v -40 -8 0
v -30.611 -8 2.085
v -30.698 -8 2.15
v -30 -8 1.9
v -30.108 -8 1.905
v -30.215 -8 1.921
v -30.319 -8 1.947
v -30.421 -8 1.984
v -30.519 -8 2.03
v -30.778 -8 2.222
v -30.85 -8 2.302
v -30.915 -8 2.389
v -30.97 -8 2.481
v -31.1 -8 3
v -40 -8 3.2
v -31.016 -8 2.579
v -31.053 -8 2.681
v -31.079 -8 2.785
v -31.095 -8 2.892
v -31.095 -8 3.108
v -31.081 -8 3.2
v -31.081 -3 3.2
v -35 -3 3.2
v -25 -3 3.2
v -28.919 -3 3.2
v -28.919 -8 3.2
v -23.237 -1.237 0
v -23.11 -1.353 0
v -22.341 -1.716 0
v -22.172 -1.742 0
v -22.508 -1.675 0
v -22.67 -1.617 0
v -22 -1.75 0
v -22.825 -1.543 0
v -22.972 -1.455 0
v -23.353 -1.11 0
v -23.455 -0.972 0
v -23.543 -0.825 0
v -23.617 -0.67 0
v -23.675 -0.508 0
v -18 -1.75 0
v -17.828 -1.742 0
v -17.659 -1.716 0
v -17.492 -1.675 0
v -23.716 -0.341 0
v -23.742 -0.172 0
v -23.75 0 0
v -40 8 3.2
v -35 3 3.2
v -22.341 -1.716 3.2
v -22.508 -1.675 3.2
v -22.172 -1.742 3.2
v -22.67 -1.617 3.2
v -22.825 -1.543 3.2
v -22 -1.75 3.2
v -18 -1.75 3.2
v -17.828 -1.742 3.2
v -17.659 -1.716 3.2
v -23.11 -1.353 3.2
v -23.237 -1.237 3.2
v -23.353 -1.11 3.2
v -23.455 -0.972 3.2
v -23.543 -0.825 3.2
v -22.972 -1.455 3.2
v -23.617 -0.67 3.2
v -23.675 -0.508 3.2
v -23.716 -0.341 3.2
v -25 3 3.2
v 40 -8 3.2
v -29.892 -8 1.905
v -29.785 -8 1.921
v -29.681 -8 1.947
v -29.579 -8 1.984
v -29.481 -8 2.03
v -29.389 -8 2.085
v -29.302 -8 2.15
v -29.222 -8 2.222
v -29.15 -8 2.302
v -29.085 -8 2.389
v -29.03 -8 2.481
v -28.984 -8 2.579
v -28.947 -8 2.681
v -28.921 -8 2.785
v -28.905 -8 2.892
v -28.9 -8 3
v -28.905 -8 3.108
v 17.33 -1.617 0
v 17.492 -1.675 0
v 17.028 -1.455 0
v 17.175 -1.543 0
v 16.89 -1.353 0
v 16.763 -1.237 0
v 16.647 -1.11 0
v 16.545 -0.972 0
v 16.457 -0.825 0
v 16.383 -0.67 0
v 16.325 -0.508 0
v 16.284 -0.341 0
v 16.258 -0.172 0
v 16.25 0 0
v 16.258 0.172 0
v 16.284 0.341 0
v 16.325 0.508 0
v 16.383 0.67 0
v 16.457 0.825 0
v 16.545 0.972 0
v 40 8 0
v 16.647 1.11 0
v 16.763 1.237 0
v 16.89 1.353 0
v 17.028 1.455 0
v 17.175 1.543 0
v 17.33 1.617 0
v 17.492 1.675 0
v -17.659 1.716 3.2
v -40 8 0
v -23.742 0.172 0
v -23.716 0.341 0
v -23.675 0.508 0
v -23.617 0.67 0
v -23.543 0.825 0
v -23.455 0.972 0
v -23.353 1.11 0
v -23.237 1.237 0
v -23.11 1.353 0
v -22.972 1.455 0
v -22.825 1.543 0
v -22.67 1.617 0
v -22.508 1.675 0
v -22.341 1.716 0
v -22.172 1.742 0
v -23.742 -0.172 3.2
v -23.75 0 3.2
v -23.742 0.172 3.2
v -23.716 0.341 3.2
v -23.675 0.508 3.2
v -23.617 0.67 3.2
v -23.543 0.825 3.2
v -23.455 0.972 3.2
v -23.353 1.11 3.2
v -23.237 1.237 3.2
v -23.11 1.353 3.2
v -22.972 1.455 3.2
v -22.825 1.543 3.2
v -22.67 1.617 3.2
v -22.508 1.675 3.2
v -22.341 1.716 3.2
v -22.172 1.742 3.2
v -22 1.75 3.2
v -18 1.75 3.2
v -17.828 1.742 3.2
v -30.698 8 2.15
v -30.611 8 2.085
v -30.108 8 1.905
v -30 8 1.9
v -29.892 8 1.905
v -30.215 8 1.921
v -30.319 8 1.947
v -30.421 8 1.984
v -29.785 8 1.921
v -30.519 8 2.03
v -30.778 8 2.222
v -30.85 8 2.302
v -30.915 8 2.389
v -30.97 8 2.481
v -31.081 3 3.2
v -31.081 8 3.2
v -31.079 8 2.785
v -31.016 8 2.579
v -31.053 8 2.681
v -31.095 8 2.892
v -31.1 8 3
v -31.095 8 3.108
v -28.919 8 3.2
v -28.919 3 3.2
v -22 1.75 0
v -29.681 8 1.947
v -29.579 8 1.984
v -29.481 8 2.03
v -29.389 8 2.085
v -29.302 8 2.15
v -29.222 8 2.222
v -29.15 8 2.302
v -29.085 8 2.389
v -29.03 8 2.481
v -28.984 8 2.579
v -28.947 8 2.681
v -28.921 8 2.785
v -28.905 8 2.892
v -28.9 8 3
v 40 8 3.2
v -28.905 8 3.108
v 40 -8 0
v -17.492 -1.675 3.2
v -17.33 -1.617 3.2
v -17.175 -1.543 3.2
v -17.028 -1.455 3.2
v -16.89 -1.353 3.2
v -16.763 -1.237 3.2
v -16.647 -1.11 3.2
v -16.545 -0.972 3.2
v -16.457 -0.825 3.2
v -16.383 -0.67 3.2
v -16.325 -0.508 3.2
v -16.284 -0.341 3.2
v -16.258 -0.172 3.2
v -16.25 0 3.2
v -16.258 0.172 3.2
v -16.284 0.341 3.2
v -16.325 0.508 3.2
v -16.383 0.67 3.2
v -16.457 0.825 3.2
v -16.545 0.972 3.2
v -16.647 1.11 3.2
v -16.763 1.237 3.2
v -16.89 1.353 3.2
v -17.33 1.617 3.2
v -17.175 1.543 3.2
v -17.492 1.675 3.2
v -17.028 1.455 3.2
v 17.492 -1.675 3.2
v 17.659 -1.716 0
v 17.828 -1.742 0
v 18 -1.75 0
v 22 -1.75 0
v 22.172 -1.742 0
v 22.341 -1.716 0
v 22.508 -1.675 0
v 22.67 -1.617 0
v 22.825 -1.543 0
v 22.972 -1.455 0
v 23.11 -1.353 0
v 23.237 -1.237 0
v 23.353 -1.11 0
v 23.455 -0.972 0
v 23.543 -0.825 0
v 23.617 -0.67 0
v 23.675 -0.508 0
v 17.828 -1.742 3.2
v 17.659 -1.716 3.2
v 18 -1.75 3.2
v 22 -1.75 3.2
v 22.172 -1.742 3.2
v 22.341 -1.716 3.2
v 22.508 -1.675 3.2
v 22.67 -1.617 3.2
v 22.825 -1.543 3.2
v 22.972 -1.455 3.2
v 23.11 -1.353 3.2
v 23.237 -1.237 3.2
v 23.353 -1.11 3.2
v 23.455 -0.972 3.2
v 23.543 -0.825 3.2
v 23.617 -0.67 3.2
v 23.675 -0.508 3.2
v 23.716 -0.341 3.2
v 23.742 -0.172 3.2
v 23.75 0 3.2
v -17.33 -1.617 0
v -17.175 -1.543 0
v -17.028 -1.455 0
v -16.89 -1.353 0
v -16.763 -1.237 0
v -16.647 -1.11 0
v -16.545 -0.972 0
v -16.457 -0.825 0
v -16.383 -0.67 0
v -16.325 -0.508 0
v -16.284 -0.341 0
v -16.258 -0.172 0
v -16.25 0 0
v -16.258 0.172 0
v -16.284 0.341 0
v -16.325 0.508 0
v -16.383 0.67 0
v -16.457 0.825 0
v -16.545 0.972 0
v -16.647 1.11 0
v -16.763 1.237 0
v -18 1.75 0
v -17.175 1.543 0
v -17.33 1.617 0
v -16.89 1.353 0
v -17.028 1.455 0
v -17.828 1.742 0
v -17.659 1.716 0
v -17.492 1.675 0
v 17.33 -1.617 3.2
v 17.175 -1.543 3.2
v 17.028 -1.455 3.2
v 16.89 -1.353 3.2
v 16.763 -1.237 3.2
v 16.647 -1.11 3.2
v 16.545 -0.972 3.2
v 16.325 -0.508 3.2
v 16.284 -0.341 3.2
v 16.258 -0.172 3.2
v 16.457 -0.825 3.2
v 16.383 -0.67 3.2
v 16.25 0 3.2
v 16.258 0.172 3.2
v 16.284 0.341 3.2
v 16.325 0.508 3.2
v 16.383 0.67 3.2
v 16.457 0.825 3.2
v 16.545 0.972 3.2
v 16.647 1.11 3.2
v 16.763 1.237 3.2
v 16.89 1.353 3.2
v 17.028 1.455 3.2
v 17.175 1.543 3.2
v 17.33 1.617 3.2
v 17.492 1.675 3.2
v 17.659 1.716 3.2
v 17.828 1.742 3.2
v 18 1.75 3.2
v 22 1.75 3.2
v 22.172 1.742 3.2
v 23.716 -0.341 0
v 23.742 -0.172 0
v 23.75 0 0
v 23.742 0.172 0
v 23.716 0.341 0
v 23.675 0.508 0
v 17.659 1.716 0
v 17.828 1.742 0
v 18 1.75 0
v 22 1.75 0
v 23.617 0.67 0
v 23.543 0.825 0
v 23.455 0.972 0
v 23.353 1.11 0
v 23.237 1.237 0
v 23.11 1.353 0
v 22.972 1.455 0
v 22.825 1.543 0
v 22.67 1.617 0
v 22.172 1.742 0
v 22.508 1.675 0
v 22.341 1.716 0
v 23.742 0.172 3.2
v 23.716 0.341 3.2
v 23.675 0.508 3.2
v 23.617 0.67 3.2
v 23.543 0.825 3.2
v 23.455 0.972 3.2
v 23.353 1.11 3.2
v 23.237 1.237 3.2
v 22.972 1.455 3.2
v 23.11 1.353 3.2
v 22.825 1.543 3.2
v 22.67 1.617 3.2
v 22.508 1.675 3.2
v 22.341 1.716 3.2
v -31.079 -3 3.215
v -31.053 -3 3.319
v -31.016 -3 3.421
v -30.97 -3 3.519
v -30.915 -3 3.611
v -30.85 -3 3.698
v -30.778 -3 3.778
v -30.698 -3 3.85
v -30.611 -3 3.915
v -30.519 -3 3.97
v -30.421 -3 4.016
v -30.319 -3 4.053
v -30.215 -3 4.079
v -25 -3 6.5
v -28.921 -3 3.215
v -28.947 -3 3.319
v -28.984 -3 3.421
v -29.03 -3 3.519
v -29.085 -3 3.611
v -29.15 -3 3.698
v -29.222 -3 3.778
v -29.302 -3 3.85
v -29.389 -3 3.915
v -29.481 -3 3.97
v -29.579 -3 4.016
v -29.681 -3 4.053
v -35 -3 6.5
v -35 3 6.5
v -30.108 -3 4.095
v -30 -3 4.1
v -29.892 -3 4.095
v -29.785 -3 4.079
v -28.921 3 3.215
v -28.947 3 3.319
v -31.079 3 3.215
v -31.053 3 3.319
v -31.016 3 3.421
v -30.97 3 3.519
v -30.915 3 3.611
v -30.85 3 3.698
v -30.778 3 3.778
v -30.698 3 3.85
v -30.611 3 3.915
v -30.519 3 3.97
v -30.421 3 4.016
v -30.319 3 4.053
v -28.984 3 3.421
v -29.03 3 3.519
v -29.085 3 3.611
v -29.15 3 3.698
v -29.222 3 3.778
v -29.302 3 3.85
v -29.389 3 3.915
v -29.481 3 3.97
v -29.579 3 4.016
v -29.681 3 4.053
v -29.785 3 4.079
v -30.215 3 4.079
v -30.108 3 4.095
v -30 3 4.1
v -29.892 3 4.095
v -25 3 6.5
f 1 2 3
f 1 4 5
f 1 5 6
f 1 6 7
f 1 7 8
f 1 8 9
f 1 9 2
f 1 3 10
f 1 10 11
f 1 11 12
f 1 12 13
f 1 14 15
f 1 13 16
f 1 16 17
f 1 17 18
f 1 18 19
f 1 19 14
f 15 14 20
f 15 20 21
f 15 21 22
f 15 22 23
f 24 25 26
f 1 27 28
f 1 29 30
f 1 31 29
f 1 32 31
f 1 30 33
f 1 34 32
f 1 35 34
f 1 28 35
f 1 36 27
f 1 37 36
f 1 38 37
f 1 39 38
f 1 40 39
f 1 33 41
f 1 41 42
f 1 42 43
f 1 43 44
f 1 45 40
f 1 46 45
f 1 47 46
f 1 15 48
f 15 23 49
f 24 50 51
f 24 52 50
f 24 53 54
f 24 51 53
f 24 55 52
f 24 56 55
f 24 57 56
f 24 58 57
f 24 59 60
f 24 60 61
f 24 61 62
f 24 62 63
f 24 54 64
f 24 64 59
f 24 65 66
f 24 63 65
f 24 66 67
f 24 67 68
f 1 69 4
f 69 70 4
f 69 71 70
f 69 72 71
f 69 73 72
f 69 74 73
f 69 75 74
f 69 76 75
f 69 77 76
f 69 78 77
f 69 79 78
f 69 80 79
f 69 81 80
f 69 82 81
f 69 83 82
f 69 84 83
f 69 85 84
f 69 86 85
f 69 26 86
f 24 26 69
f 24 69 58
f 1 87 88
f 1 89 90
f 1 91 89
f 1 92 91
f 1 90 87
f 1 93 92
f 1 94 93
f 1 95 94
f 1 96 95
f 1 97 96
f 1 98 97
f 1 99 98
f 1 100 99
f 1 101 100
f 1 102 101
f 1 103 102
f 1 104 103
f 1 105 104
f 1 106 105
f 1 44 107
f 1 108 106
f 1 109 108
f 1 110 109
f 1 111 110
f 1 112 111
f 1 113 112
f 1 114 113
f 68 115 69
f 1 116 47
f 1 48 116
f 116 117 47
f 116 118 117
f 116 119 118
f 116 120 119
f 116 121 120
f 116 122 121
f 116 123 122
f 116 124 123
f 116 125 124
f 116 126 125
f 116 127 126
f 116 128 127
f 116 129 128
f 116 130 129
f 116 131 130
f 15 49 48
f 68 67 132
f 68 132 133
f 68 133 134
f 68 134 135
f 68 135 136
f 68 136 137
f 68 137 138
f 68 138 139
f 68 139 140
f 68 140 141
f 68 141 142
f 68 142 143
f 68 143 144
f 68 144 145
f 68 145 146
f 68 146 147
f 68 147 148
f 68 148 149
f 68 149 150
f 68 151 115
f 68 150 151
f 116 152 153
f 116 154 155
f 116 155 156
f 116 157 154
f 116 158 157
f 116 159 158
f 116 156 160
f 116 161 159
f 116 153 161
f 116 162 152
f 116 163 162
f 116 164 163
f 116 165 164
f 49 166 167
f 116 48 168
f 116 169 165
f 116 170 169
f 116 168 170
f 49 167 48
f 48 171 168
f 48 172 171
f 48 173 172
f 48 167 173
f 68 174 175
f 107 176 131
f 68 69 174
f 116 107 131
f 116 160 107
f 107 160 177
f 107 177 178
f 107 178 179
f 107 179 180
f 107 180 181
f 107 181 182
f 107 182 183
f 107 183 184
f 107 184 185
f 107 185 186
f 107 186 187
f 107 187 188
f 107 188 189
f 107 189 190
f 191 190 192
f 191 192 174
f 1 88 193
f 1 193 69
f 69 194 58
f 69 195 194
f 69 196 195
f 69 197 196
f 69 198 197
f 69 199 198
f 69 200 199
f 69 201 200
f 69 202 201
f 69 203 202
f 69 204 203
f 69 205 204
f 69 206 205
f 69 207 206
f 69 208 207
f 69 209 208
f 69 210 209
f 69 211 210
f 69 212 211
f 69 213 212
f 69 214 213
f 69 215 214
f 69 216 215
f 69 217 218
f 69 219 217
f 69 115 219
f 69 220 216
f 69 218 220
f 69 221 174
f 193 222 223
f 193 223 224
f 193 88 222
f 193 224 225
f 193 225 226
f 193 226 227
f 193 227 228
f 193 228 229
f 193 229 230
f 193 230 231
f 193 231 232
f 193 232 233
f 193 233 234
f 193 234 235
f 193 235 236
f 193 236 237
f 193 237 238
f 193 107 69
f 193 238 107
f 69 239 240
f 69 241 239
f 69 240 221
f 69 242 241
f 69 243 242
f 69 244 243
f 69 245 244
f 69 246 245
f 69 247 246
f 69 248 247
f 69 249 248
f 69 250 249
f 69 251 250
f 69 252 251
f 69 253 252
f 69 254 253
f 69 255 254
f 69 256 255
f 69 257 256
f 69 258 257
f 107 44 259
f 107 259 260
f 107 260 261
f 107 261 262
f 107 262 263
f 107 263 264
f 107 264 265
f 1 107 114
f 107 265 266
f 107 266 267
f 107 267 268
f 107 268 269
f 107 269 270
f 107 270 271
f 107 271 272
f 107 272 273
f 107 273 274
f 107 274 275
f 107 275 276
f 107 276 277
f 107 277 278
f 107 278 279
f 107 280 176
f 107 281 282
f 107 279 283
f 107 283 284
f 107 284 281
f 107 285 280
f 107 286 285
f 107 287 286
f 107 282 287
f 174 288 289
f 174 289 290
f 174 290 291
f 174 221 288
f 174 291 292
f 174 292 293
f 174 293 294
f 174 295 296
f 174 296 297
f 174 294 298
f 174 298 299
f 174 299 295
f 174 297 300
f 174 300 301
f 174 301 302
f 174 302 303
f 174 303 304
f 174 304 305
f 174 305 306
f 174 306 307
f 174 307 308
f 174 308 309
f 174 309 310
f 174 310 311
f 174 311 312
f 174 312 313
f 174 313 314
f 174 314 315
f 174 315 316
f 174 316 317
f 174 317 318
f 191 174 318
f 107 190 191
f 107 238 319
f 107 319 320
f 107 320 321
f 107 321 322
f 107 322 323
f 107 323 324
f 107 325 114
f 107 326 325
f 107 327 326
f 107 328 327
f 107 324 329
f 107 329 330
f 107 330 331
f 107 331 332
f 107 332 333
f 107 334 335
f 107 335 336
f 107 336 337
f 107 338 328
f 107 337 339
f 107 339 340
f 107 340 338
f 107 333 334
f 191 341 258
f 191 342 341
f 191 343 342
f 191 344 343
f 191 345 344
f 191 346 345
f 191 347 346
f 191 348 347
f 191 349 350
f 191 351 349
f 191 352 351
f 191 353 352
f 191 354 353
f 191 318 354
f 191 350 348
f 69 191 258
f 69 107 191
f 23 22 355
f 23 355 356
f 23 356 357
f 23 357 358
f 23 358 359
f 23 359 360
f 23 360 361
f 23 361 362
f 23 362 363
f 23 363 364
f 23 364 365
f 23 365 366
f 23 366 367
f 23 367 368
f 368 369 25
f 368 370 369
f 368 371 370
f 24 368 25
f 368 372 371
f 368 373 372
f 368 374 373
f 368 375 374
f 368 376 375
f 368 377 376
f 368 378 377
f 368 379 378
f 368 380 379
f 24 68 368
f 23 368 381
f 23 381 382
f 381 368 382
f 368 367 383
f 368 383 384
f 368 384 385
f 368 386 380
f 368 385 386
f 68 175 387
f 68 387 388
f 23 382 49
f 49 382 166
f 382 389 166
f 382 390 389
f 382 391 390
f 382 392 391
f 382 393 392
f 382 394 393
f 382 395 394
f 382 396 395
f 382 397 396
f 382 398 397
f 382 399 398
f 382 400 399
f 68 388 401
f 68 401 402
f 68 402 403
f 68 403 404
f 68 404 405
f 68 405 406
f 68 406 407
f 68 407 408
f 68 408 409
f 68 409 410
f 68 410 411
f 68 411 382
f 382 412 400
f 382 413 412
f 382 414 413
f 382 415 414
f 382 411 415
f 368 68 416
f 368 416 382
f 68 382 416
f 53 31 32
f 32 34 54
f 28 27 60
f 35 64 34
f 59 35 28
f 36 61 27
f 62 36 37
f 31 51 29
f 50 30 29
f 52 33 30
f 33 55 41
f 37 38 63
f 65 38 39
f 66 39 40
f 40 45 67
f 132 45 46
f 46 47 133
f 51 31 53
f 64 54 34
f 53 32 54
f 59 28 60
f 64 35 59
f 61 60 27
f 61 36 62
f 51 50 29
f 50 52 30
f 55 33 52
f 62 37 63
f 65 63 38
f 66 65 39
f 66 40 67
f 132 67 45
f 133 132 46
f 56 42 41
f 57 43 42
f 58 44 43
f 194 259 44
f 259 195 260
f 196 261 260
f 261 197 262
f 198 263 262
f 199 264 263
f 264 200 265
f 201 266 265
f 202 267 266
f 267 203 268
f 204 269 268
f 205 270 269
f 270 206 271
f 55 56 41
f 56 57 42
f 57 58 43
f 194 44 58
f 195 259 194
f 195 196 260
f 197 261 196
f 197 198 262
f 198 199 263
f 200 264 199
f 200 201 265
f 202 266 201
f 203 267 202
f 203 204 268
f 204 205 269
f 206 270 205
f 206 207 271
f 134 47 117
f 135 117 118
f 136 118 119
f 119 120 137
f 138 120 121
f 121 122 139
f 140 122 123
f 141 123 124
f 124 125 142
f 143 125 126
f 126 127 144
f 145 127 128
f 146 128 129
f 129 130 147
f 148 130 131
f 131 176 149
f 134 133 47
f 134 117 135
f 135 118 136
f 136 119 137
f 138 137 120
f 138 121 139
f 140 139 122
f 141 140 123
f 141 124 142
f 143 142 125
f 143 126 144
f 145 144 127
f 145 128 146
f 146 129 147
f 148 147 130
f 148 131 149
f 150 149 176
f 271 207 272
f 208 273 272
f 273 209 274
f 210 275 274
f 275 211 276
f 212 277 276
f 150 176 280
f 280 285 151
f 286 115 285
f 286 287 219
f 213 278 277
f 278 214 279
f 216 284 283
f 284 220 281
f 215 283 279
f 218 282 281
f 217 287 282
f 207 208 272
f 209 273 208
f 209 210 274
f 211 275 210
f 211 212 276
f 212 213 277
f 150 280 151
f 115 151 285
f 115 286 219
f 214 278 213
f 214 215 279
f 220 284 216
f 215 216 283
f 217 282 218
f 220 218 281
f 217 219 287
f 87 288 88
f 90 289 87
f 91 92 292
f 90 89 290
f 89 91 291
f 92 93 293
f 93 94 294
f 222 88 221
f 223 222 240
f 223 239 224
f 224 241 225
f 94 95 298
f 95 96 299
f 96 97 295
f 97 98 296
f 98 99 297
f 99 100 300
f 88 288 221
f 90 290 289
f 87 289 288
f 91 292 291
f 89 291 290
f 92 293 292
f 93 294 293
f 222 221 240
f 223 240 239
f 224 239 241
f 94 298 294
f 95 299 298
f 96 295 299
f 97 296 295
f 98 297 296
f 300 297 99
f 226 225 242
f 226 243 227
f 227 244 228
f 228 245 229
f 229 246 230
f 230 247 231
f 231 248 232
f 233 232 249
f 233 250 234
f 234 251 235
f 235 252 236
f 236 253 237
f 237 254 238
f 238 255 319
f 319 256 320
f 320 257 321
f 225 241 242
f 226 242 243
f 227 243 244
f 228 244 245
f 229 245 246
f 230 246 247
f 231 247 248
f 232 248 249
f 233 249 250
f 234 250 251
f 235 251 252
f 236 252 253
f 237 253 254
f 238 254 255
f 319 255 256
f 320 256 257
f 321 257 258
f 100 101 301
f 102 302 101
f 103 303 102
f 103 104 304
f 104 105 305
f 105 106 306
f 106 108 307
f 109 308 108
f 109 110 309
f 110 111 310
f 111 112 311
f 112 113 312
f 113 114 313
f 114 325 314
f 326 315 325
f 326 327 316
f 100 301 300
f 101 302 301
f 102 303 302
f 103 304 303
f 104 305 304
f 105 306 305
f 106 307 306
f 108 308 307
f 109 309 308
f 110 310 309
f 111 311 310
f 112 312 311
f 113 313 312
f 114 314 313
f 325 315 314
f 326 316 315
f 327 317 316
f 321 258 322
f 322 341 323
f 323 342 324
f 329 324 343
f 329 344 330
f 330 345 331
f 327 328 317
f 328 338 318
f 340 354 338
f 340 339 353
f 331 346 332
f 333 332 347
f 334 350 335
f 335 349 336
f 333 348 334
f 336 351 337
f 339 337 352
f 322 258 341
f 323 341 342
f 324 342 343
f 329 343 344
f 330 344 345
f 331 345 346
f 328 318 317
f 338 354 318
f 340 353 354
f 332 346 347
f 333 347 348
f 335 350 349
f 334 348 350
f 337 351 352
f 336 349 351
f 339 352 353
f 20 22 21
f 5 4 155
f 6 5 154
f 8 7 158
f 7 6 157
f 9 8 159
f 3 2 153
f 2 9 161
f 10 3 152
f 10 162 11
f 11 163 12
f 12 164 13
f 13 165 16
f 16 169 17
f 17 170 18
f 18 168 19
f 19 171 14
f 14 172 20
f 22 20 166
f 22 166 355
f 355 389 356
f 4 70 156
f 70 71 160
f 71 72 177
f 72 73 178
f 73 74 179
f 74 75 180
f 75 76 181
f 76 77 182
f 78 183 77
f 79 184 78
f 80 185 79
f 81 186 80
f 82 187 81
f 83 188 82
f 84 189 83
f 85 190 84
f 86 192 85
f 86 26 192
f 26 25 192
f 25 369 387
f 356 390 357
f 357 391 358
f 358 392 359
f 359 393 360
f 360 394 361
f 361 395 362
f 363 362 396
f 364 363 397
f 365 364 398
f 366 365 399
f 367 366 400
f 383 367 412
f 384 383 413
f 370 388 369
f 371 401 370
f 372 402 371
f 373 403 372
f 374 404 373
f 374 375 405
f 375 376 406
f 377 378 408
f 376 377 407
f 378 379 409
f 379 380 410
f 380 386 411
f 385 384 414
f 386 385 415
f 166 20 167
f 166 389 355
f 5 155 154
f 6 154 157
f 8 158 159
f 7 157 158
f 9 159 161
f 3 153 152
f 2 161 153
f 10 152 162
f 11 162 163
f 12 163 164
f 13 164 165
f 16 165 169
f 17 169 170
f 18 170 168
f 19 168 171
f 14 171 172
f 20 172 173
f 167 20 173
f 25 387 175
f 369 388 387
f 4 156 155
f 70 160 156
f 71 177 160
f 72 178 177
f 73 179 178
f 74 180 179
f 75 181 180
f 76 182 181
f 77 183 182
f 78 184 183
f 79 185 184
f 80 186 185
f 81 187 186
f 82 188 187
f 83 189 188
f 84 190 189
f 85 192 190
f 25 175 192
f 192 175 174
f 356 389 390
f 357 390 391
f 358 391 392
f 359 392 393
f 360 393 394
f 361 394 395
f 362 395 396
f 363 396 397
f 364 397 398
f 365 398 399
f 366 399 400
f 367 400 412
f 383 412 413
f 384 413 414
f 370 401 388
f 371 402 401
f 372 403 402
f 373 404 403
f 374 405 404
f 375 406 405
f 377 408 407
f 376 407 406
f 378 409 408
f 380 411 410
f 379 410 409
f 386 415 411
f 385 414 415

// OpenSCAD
// file: string_mount_parameters.scad
// Stage 3 string-pull redesign. Millimetres. Edit after physical fit checks.
// The earlier rigid bell-crank files remain unchanged for reference.
include <parameters.scad>

sm_plate_w = 96; // PROPOSED, within measured 100 mm flat rear width
sm_plate_h = 96; // PROPOSED, within measured 100 mm flat rear height
sm_plate_t = 4;
sm_plate_corner_r = 5;
sm_rear_gap = 6; // PROPOSED, ~5 mm rib plus nominal 1 mm clearance
sm_bin_mount_x = 41; // PROVISIONAL: plate becomes rear-wall drilling template
sm_bin_mount_y = 0; // PROVISIONAL: vertical hole datum
sm_bin_slot_d = 3.5; // M3 clearance, tune to real bolt/print
sm_bin_slot_length = 3.5; // round M3 hole; use plate to mark drill positions
sm_bin_wall_t = rim_thickness; // 3 mm measured elsewhere; verify here
sm_m3_clearance = 3.5;
sm_m3_nut_af = 5.8; // PROVISIONAL, check actual nut
sm_m3_nut_pocket_depth = 2.5;

// Component layout on ONE integrated main holder. PROVISIONAL until fitted.
sm_servo_cx = -26;
sm_nano_cx = 20;
sm_nano_cy = 25;
sm_cell_cx = 0;
sm_cell_cy = -26.5;

// Servo shelf: catalogue body envelope from TowerPro; ear pitch UNMEASURED.
sm_servo_body_slot_x = servo_body_x + 0.7;
sm_servo_body_slot_z = servo_body_y + 0.7;
sm_servo_ear_pitch = servo_ear_hole_pitch;
sm_servo_ear_hole_d = servo_ear_screw_d;
sm_servo_finger_t = 5; // along Y
sm_servo_finger_z1 = 33; // from component-facing plate base Z=4
sm_servo_axis_z = 17;
sm_servo_string_radius = 14; // PROVISIONAL horn hole radius
sm_horn_plane_y = 30; // PROVISIONAL distance up plate to the horn plane
sm_horn_closed_deg = 90; // PROVISIONAL, not bench verified
sm_plate_center_world_z = 150; // PROVISIONAL placement on measured rear flat
sm_hinge_world_z = 200; // simplified bin-height hinge datum

// Nano Classic board is published as 45 x 18 mm. The user's board appears
// mounted on another carrier, whose full envelope has NOT been measured.
sm_nano_board_l = 45;
sm_nano_board_w = 18;
sm_nano_pad_h = 3; // clearance for underside solder joints
sm_nano_strap_slot_w = 3.2;

// 21700 dimensions vary by exact cell and holder. This only supports a
// separate insulated cell holder or protected mechanical retention setup.
sm_cell_reference_d = 21.8; // PROVISIONAL generous cell envelope
sm_cell_reference_l = 71.5; // PROVISIONAL generous cell envelope
sm_cell_saddle_l = 82; // PROPOSED integrated rail length
sm_cell_saddle_w = 25;
sm_cell_side_rail_h = 7;
sm_cell_strap_slot_w = 3.2;

// Removable fixed guide arm. This extends above the rear plate; its full
// clearance to the lid has NOT been measured. It is a string guide, not a
// rotating load-bearing lever. The board holes also use M3 hardware.
sm_arm_center_x = sm_servo_cx + sm_servo_string_radius;
sm_arm_base_y = 34;
sm_arm_bolt_pitch = 14;
sm_arm_bolt_y = sm_arm_base_y + 8;
sm_arm_standoff_h = 8; // plate 4 + standoff 8 + arm centre 5 = horn Z 17
sm_arm_t = 10;
sm_arm_tip_y = 72; // PROVISIONAL, 24 mm above 96 mm plate upper edge
sm_string_guide_hole_d = 4;
// String lid anchor position, hinge height and lid mass are UNMEASURED.
// These values only generate a marked hand-fit tab, not a powered design.
sm_lid_anchor_hole_spacing = 40; // PROVISIONAL; fit to the existing lid holes
sm_lid_rear_hole_from_hinge = 20; // PROVISIONAL location of rear existing hole
sm_lid_tie_from_hinge = 10; // PROVISIONAL line tie; travel feasibility depends on it
sm_lid_tie_above_lid = 3; // top-side eye; underside eye crosses lid
sm_lid_anchor_hole_d = 3.5; // only if real holes accept suitable fasteners
sm_lid_anchor_plate_t = 3.2;
sm_lid_anchor_string_d = 2.2; // for ~1 mm nonstretch line; polish printed bore
// main file
// Two-point TOP-side lid string tab. HOLE SPACING AND FASTENING UNMEASURED.
// Existing underside holes may be blind; do not drill the lid from this model.
include <string_mount_parameters.scad>
$fn=64;
part="anchor";

anchor_length=sm_lid_anchor_hole_spacing+40;
anchor_width=16;
anchor_lug_h=6.5;
anchor_slot_adjust=4; // +/- 2 mm at each hole; not a substitute for measurement
anchor_tie_x=sm_lid_tie_from_hinge-
             (sm_lid_rear_hole_from_hinge+sm_lid_anchor_hole_spacing/2);

assert(anchor_tie_x > -anchor_length/2+5);
assert(anchor_tie_x < -sm_lid_anchor_hole_spacing/2-8);

module lid_string_anchor() {
    difference() {
        union() {
            translate([-anchor_length/2,-anchor_width/2,0])
                cube([anchor_length,anchor_width,sm_lid_anchor_plate_t]);
            translate([anchor_tie_x-5,-3,sm_lid_anchor_plate_t])
                cube([10,6,anchor_lug_h-sm_lid_anchor_plate_t]);
        }
        for (side=[-1,1]) hull()
            for (dx=[-anchor_slot_adjust/2,anchor_slot_adjust/2])
                translate([side*sm_lid_anchor_hole_spacing/2+dx,
                           0,-0.1])
                    cylinder(d=sm_lid_anchor_hole_d,
                             h=sm_lid_anchor_plate_t+0.2);
        translate([anchor_tie_x,-anchor_width/2-0.1,
                   sm_lid_tie_above_lid])
            rotate([-90,0,0])
            cylinder(d=sm_lid_anchor_string_d,h=anchor_width+0.2);
    }
}

lid_string_anchor();
